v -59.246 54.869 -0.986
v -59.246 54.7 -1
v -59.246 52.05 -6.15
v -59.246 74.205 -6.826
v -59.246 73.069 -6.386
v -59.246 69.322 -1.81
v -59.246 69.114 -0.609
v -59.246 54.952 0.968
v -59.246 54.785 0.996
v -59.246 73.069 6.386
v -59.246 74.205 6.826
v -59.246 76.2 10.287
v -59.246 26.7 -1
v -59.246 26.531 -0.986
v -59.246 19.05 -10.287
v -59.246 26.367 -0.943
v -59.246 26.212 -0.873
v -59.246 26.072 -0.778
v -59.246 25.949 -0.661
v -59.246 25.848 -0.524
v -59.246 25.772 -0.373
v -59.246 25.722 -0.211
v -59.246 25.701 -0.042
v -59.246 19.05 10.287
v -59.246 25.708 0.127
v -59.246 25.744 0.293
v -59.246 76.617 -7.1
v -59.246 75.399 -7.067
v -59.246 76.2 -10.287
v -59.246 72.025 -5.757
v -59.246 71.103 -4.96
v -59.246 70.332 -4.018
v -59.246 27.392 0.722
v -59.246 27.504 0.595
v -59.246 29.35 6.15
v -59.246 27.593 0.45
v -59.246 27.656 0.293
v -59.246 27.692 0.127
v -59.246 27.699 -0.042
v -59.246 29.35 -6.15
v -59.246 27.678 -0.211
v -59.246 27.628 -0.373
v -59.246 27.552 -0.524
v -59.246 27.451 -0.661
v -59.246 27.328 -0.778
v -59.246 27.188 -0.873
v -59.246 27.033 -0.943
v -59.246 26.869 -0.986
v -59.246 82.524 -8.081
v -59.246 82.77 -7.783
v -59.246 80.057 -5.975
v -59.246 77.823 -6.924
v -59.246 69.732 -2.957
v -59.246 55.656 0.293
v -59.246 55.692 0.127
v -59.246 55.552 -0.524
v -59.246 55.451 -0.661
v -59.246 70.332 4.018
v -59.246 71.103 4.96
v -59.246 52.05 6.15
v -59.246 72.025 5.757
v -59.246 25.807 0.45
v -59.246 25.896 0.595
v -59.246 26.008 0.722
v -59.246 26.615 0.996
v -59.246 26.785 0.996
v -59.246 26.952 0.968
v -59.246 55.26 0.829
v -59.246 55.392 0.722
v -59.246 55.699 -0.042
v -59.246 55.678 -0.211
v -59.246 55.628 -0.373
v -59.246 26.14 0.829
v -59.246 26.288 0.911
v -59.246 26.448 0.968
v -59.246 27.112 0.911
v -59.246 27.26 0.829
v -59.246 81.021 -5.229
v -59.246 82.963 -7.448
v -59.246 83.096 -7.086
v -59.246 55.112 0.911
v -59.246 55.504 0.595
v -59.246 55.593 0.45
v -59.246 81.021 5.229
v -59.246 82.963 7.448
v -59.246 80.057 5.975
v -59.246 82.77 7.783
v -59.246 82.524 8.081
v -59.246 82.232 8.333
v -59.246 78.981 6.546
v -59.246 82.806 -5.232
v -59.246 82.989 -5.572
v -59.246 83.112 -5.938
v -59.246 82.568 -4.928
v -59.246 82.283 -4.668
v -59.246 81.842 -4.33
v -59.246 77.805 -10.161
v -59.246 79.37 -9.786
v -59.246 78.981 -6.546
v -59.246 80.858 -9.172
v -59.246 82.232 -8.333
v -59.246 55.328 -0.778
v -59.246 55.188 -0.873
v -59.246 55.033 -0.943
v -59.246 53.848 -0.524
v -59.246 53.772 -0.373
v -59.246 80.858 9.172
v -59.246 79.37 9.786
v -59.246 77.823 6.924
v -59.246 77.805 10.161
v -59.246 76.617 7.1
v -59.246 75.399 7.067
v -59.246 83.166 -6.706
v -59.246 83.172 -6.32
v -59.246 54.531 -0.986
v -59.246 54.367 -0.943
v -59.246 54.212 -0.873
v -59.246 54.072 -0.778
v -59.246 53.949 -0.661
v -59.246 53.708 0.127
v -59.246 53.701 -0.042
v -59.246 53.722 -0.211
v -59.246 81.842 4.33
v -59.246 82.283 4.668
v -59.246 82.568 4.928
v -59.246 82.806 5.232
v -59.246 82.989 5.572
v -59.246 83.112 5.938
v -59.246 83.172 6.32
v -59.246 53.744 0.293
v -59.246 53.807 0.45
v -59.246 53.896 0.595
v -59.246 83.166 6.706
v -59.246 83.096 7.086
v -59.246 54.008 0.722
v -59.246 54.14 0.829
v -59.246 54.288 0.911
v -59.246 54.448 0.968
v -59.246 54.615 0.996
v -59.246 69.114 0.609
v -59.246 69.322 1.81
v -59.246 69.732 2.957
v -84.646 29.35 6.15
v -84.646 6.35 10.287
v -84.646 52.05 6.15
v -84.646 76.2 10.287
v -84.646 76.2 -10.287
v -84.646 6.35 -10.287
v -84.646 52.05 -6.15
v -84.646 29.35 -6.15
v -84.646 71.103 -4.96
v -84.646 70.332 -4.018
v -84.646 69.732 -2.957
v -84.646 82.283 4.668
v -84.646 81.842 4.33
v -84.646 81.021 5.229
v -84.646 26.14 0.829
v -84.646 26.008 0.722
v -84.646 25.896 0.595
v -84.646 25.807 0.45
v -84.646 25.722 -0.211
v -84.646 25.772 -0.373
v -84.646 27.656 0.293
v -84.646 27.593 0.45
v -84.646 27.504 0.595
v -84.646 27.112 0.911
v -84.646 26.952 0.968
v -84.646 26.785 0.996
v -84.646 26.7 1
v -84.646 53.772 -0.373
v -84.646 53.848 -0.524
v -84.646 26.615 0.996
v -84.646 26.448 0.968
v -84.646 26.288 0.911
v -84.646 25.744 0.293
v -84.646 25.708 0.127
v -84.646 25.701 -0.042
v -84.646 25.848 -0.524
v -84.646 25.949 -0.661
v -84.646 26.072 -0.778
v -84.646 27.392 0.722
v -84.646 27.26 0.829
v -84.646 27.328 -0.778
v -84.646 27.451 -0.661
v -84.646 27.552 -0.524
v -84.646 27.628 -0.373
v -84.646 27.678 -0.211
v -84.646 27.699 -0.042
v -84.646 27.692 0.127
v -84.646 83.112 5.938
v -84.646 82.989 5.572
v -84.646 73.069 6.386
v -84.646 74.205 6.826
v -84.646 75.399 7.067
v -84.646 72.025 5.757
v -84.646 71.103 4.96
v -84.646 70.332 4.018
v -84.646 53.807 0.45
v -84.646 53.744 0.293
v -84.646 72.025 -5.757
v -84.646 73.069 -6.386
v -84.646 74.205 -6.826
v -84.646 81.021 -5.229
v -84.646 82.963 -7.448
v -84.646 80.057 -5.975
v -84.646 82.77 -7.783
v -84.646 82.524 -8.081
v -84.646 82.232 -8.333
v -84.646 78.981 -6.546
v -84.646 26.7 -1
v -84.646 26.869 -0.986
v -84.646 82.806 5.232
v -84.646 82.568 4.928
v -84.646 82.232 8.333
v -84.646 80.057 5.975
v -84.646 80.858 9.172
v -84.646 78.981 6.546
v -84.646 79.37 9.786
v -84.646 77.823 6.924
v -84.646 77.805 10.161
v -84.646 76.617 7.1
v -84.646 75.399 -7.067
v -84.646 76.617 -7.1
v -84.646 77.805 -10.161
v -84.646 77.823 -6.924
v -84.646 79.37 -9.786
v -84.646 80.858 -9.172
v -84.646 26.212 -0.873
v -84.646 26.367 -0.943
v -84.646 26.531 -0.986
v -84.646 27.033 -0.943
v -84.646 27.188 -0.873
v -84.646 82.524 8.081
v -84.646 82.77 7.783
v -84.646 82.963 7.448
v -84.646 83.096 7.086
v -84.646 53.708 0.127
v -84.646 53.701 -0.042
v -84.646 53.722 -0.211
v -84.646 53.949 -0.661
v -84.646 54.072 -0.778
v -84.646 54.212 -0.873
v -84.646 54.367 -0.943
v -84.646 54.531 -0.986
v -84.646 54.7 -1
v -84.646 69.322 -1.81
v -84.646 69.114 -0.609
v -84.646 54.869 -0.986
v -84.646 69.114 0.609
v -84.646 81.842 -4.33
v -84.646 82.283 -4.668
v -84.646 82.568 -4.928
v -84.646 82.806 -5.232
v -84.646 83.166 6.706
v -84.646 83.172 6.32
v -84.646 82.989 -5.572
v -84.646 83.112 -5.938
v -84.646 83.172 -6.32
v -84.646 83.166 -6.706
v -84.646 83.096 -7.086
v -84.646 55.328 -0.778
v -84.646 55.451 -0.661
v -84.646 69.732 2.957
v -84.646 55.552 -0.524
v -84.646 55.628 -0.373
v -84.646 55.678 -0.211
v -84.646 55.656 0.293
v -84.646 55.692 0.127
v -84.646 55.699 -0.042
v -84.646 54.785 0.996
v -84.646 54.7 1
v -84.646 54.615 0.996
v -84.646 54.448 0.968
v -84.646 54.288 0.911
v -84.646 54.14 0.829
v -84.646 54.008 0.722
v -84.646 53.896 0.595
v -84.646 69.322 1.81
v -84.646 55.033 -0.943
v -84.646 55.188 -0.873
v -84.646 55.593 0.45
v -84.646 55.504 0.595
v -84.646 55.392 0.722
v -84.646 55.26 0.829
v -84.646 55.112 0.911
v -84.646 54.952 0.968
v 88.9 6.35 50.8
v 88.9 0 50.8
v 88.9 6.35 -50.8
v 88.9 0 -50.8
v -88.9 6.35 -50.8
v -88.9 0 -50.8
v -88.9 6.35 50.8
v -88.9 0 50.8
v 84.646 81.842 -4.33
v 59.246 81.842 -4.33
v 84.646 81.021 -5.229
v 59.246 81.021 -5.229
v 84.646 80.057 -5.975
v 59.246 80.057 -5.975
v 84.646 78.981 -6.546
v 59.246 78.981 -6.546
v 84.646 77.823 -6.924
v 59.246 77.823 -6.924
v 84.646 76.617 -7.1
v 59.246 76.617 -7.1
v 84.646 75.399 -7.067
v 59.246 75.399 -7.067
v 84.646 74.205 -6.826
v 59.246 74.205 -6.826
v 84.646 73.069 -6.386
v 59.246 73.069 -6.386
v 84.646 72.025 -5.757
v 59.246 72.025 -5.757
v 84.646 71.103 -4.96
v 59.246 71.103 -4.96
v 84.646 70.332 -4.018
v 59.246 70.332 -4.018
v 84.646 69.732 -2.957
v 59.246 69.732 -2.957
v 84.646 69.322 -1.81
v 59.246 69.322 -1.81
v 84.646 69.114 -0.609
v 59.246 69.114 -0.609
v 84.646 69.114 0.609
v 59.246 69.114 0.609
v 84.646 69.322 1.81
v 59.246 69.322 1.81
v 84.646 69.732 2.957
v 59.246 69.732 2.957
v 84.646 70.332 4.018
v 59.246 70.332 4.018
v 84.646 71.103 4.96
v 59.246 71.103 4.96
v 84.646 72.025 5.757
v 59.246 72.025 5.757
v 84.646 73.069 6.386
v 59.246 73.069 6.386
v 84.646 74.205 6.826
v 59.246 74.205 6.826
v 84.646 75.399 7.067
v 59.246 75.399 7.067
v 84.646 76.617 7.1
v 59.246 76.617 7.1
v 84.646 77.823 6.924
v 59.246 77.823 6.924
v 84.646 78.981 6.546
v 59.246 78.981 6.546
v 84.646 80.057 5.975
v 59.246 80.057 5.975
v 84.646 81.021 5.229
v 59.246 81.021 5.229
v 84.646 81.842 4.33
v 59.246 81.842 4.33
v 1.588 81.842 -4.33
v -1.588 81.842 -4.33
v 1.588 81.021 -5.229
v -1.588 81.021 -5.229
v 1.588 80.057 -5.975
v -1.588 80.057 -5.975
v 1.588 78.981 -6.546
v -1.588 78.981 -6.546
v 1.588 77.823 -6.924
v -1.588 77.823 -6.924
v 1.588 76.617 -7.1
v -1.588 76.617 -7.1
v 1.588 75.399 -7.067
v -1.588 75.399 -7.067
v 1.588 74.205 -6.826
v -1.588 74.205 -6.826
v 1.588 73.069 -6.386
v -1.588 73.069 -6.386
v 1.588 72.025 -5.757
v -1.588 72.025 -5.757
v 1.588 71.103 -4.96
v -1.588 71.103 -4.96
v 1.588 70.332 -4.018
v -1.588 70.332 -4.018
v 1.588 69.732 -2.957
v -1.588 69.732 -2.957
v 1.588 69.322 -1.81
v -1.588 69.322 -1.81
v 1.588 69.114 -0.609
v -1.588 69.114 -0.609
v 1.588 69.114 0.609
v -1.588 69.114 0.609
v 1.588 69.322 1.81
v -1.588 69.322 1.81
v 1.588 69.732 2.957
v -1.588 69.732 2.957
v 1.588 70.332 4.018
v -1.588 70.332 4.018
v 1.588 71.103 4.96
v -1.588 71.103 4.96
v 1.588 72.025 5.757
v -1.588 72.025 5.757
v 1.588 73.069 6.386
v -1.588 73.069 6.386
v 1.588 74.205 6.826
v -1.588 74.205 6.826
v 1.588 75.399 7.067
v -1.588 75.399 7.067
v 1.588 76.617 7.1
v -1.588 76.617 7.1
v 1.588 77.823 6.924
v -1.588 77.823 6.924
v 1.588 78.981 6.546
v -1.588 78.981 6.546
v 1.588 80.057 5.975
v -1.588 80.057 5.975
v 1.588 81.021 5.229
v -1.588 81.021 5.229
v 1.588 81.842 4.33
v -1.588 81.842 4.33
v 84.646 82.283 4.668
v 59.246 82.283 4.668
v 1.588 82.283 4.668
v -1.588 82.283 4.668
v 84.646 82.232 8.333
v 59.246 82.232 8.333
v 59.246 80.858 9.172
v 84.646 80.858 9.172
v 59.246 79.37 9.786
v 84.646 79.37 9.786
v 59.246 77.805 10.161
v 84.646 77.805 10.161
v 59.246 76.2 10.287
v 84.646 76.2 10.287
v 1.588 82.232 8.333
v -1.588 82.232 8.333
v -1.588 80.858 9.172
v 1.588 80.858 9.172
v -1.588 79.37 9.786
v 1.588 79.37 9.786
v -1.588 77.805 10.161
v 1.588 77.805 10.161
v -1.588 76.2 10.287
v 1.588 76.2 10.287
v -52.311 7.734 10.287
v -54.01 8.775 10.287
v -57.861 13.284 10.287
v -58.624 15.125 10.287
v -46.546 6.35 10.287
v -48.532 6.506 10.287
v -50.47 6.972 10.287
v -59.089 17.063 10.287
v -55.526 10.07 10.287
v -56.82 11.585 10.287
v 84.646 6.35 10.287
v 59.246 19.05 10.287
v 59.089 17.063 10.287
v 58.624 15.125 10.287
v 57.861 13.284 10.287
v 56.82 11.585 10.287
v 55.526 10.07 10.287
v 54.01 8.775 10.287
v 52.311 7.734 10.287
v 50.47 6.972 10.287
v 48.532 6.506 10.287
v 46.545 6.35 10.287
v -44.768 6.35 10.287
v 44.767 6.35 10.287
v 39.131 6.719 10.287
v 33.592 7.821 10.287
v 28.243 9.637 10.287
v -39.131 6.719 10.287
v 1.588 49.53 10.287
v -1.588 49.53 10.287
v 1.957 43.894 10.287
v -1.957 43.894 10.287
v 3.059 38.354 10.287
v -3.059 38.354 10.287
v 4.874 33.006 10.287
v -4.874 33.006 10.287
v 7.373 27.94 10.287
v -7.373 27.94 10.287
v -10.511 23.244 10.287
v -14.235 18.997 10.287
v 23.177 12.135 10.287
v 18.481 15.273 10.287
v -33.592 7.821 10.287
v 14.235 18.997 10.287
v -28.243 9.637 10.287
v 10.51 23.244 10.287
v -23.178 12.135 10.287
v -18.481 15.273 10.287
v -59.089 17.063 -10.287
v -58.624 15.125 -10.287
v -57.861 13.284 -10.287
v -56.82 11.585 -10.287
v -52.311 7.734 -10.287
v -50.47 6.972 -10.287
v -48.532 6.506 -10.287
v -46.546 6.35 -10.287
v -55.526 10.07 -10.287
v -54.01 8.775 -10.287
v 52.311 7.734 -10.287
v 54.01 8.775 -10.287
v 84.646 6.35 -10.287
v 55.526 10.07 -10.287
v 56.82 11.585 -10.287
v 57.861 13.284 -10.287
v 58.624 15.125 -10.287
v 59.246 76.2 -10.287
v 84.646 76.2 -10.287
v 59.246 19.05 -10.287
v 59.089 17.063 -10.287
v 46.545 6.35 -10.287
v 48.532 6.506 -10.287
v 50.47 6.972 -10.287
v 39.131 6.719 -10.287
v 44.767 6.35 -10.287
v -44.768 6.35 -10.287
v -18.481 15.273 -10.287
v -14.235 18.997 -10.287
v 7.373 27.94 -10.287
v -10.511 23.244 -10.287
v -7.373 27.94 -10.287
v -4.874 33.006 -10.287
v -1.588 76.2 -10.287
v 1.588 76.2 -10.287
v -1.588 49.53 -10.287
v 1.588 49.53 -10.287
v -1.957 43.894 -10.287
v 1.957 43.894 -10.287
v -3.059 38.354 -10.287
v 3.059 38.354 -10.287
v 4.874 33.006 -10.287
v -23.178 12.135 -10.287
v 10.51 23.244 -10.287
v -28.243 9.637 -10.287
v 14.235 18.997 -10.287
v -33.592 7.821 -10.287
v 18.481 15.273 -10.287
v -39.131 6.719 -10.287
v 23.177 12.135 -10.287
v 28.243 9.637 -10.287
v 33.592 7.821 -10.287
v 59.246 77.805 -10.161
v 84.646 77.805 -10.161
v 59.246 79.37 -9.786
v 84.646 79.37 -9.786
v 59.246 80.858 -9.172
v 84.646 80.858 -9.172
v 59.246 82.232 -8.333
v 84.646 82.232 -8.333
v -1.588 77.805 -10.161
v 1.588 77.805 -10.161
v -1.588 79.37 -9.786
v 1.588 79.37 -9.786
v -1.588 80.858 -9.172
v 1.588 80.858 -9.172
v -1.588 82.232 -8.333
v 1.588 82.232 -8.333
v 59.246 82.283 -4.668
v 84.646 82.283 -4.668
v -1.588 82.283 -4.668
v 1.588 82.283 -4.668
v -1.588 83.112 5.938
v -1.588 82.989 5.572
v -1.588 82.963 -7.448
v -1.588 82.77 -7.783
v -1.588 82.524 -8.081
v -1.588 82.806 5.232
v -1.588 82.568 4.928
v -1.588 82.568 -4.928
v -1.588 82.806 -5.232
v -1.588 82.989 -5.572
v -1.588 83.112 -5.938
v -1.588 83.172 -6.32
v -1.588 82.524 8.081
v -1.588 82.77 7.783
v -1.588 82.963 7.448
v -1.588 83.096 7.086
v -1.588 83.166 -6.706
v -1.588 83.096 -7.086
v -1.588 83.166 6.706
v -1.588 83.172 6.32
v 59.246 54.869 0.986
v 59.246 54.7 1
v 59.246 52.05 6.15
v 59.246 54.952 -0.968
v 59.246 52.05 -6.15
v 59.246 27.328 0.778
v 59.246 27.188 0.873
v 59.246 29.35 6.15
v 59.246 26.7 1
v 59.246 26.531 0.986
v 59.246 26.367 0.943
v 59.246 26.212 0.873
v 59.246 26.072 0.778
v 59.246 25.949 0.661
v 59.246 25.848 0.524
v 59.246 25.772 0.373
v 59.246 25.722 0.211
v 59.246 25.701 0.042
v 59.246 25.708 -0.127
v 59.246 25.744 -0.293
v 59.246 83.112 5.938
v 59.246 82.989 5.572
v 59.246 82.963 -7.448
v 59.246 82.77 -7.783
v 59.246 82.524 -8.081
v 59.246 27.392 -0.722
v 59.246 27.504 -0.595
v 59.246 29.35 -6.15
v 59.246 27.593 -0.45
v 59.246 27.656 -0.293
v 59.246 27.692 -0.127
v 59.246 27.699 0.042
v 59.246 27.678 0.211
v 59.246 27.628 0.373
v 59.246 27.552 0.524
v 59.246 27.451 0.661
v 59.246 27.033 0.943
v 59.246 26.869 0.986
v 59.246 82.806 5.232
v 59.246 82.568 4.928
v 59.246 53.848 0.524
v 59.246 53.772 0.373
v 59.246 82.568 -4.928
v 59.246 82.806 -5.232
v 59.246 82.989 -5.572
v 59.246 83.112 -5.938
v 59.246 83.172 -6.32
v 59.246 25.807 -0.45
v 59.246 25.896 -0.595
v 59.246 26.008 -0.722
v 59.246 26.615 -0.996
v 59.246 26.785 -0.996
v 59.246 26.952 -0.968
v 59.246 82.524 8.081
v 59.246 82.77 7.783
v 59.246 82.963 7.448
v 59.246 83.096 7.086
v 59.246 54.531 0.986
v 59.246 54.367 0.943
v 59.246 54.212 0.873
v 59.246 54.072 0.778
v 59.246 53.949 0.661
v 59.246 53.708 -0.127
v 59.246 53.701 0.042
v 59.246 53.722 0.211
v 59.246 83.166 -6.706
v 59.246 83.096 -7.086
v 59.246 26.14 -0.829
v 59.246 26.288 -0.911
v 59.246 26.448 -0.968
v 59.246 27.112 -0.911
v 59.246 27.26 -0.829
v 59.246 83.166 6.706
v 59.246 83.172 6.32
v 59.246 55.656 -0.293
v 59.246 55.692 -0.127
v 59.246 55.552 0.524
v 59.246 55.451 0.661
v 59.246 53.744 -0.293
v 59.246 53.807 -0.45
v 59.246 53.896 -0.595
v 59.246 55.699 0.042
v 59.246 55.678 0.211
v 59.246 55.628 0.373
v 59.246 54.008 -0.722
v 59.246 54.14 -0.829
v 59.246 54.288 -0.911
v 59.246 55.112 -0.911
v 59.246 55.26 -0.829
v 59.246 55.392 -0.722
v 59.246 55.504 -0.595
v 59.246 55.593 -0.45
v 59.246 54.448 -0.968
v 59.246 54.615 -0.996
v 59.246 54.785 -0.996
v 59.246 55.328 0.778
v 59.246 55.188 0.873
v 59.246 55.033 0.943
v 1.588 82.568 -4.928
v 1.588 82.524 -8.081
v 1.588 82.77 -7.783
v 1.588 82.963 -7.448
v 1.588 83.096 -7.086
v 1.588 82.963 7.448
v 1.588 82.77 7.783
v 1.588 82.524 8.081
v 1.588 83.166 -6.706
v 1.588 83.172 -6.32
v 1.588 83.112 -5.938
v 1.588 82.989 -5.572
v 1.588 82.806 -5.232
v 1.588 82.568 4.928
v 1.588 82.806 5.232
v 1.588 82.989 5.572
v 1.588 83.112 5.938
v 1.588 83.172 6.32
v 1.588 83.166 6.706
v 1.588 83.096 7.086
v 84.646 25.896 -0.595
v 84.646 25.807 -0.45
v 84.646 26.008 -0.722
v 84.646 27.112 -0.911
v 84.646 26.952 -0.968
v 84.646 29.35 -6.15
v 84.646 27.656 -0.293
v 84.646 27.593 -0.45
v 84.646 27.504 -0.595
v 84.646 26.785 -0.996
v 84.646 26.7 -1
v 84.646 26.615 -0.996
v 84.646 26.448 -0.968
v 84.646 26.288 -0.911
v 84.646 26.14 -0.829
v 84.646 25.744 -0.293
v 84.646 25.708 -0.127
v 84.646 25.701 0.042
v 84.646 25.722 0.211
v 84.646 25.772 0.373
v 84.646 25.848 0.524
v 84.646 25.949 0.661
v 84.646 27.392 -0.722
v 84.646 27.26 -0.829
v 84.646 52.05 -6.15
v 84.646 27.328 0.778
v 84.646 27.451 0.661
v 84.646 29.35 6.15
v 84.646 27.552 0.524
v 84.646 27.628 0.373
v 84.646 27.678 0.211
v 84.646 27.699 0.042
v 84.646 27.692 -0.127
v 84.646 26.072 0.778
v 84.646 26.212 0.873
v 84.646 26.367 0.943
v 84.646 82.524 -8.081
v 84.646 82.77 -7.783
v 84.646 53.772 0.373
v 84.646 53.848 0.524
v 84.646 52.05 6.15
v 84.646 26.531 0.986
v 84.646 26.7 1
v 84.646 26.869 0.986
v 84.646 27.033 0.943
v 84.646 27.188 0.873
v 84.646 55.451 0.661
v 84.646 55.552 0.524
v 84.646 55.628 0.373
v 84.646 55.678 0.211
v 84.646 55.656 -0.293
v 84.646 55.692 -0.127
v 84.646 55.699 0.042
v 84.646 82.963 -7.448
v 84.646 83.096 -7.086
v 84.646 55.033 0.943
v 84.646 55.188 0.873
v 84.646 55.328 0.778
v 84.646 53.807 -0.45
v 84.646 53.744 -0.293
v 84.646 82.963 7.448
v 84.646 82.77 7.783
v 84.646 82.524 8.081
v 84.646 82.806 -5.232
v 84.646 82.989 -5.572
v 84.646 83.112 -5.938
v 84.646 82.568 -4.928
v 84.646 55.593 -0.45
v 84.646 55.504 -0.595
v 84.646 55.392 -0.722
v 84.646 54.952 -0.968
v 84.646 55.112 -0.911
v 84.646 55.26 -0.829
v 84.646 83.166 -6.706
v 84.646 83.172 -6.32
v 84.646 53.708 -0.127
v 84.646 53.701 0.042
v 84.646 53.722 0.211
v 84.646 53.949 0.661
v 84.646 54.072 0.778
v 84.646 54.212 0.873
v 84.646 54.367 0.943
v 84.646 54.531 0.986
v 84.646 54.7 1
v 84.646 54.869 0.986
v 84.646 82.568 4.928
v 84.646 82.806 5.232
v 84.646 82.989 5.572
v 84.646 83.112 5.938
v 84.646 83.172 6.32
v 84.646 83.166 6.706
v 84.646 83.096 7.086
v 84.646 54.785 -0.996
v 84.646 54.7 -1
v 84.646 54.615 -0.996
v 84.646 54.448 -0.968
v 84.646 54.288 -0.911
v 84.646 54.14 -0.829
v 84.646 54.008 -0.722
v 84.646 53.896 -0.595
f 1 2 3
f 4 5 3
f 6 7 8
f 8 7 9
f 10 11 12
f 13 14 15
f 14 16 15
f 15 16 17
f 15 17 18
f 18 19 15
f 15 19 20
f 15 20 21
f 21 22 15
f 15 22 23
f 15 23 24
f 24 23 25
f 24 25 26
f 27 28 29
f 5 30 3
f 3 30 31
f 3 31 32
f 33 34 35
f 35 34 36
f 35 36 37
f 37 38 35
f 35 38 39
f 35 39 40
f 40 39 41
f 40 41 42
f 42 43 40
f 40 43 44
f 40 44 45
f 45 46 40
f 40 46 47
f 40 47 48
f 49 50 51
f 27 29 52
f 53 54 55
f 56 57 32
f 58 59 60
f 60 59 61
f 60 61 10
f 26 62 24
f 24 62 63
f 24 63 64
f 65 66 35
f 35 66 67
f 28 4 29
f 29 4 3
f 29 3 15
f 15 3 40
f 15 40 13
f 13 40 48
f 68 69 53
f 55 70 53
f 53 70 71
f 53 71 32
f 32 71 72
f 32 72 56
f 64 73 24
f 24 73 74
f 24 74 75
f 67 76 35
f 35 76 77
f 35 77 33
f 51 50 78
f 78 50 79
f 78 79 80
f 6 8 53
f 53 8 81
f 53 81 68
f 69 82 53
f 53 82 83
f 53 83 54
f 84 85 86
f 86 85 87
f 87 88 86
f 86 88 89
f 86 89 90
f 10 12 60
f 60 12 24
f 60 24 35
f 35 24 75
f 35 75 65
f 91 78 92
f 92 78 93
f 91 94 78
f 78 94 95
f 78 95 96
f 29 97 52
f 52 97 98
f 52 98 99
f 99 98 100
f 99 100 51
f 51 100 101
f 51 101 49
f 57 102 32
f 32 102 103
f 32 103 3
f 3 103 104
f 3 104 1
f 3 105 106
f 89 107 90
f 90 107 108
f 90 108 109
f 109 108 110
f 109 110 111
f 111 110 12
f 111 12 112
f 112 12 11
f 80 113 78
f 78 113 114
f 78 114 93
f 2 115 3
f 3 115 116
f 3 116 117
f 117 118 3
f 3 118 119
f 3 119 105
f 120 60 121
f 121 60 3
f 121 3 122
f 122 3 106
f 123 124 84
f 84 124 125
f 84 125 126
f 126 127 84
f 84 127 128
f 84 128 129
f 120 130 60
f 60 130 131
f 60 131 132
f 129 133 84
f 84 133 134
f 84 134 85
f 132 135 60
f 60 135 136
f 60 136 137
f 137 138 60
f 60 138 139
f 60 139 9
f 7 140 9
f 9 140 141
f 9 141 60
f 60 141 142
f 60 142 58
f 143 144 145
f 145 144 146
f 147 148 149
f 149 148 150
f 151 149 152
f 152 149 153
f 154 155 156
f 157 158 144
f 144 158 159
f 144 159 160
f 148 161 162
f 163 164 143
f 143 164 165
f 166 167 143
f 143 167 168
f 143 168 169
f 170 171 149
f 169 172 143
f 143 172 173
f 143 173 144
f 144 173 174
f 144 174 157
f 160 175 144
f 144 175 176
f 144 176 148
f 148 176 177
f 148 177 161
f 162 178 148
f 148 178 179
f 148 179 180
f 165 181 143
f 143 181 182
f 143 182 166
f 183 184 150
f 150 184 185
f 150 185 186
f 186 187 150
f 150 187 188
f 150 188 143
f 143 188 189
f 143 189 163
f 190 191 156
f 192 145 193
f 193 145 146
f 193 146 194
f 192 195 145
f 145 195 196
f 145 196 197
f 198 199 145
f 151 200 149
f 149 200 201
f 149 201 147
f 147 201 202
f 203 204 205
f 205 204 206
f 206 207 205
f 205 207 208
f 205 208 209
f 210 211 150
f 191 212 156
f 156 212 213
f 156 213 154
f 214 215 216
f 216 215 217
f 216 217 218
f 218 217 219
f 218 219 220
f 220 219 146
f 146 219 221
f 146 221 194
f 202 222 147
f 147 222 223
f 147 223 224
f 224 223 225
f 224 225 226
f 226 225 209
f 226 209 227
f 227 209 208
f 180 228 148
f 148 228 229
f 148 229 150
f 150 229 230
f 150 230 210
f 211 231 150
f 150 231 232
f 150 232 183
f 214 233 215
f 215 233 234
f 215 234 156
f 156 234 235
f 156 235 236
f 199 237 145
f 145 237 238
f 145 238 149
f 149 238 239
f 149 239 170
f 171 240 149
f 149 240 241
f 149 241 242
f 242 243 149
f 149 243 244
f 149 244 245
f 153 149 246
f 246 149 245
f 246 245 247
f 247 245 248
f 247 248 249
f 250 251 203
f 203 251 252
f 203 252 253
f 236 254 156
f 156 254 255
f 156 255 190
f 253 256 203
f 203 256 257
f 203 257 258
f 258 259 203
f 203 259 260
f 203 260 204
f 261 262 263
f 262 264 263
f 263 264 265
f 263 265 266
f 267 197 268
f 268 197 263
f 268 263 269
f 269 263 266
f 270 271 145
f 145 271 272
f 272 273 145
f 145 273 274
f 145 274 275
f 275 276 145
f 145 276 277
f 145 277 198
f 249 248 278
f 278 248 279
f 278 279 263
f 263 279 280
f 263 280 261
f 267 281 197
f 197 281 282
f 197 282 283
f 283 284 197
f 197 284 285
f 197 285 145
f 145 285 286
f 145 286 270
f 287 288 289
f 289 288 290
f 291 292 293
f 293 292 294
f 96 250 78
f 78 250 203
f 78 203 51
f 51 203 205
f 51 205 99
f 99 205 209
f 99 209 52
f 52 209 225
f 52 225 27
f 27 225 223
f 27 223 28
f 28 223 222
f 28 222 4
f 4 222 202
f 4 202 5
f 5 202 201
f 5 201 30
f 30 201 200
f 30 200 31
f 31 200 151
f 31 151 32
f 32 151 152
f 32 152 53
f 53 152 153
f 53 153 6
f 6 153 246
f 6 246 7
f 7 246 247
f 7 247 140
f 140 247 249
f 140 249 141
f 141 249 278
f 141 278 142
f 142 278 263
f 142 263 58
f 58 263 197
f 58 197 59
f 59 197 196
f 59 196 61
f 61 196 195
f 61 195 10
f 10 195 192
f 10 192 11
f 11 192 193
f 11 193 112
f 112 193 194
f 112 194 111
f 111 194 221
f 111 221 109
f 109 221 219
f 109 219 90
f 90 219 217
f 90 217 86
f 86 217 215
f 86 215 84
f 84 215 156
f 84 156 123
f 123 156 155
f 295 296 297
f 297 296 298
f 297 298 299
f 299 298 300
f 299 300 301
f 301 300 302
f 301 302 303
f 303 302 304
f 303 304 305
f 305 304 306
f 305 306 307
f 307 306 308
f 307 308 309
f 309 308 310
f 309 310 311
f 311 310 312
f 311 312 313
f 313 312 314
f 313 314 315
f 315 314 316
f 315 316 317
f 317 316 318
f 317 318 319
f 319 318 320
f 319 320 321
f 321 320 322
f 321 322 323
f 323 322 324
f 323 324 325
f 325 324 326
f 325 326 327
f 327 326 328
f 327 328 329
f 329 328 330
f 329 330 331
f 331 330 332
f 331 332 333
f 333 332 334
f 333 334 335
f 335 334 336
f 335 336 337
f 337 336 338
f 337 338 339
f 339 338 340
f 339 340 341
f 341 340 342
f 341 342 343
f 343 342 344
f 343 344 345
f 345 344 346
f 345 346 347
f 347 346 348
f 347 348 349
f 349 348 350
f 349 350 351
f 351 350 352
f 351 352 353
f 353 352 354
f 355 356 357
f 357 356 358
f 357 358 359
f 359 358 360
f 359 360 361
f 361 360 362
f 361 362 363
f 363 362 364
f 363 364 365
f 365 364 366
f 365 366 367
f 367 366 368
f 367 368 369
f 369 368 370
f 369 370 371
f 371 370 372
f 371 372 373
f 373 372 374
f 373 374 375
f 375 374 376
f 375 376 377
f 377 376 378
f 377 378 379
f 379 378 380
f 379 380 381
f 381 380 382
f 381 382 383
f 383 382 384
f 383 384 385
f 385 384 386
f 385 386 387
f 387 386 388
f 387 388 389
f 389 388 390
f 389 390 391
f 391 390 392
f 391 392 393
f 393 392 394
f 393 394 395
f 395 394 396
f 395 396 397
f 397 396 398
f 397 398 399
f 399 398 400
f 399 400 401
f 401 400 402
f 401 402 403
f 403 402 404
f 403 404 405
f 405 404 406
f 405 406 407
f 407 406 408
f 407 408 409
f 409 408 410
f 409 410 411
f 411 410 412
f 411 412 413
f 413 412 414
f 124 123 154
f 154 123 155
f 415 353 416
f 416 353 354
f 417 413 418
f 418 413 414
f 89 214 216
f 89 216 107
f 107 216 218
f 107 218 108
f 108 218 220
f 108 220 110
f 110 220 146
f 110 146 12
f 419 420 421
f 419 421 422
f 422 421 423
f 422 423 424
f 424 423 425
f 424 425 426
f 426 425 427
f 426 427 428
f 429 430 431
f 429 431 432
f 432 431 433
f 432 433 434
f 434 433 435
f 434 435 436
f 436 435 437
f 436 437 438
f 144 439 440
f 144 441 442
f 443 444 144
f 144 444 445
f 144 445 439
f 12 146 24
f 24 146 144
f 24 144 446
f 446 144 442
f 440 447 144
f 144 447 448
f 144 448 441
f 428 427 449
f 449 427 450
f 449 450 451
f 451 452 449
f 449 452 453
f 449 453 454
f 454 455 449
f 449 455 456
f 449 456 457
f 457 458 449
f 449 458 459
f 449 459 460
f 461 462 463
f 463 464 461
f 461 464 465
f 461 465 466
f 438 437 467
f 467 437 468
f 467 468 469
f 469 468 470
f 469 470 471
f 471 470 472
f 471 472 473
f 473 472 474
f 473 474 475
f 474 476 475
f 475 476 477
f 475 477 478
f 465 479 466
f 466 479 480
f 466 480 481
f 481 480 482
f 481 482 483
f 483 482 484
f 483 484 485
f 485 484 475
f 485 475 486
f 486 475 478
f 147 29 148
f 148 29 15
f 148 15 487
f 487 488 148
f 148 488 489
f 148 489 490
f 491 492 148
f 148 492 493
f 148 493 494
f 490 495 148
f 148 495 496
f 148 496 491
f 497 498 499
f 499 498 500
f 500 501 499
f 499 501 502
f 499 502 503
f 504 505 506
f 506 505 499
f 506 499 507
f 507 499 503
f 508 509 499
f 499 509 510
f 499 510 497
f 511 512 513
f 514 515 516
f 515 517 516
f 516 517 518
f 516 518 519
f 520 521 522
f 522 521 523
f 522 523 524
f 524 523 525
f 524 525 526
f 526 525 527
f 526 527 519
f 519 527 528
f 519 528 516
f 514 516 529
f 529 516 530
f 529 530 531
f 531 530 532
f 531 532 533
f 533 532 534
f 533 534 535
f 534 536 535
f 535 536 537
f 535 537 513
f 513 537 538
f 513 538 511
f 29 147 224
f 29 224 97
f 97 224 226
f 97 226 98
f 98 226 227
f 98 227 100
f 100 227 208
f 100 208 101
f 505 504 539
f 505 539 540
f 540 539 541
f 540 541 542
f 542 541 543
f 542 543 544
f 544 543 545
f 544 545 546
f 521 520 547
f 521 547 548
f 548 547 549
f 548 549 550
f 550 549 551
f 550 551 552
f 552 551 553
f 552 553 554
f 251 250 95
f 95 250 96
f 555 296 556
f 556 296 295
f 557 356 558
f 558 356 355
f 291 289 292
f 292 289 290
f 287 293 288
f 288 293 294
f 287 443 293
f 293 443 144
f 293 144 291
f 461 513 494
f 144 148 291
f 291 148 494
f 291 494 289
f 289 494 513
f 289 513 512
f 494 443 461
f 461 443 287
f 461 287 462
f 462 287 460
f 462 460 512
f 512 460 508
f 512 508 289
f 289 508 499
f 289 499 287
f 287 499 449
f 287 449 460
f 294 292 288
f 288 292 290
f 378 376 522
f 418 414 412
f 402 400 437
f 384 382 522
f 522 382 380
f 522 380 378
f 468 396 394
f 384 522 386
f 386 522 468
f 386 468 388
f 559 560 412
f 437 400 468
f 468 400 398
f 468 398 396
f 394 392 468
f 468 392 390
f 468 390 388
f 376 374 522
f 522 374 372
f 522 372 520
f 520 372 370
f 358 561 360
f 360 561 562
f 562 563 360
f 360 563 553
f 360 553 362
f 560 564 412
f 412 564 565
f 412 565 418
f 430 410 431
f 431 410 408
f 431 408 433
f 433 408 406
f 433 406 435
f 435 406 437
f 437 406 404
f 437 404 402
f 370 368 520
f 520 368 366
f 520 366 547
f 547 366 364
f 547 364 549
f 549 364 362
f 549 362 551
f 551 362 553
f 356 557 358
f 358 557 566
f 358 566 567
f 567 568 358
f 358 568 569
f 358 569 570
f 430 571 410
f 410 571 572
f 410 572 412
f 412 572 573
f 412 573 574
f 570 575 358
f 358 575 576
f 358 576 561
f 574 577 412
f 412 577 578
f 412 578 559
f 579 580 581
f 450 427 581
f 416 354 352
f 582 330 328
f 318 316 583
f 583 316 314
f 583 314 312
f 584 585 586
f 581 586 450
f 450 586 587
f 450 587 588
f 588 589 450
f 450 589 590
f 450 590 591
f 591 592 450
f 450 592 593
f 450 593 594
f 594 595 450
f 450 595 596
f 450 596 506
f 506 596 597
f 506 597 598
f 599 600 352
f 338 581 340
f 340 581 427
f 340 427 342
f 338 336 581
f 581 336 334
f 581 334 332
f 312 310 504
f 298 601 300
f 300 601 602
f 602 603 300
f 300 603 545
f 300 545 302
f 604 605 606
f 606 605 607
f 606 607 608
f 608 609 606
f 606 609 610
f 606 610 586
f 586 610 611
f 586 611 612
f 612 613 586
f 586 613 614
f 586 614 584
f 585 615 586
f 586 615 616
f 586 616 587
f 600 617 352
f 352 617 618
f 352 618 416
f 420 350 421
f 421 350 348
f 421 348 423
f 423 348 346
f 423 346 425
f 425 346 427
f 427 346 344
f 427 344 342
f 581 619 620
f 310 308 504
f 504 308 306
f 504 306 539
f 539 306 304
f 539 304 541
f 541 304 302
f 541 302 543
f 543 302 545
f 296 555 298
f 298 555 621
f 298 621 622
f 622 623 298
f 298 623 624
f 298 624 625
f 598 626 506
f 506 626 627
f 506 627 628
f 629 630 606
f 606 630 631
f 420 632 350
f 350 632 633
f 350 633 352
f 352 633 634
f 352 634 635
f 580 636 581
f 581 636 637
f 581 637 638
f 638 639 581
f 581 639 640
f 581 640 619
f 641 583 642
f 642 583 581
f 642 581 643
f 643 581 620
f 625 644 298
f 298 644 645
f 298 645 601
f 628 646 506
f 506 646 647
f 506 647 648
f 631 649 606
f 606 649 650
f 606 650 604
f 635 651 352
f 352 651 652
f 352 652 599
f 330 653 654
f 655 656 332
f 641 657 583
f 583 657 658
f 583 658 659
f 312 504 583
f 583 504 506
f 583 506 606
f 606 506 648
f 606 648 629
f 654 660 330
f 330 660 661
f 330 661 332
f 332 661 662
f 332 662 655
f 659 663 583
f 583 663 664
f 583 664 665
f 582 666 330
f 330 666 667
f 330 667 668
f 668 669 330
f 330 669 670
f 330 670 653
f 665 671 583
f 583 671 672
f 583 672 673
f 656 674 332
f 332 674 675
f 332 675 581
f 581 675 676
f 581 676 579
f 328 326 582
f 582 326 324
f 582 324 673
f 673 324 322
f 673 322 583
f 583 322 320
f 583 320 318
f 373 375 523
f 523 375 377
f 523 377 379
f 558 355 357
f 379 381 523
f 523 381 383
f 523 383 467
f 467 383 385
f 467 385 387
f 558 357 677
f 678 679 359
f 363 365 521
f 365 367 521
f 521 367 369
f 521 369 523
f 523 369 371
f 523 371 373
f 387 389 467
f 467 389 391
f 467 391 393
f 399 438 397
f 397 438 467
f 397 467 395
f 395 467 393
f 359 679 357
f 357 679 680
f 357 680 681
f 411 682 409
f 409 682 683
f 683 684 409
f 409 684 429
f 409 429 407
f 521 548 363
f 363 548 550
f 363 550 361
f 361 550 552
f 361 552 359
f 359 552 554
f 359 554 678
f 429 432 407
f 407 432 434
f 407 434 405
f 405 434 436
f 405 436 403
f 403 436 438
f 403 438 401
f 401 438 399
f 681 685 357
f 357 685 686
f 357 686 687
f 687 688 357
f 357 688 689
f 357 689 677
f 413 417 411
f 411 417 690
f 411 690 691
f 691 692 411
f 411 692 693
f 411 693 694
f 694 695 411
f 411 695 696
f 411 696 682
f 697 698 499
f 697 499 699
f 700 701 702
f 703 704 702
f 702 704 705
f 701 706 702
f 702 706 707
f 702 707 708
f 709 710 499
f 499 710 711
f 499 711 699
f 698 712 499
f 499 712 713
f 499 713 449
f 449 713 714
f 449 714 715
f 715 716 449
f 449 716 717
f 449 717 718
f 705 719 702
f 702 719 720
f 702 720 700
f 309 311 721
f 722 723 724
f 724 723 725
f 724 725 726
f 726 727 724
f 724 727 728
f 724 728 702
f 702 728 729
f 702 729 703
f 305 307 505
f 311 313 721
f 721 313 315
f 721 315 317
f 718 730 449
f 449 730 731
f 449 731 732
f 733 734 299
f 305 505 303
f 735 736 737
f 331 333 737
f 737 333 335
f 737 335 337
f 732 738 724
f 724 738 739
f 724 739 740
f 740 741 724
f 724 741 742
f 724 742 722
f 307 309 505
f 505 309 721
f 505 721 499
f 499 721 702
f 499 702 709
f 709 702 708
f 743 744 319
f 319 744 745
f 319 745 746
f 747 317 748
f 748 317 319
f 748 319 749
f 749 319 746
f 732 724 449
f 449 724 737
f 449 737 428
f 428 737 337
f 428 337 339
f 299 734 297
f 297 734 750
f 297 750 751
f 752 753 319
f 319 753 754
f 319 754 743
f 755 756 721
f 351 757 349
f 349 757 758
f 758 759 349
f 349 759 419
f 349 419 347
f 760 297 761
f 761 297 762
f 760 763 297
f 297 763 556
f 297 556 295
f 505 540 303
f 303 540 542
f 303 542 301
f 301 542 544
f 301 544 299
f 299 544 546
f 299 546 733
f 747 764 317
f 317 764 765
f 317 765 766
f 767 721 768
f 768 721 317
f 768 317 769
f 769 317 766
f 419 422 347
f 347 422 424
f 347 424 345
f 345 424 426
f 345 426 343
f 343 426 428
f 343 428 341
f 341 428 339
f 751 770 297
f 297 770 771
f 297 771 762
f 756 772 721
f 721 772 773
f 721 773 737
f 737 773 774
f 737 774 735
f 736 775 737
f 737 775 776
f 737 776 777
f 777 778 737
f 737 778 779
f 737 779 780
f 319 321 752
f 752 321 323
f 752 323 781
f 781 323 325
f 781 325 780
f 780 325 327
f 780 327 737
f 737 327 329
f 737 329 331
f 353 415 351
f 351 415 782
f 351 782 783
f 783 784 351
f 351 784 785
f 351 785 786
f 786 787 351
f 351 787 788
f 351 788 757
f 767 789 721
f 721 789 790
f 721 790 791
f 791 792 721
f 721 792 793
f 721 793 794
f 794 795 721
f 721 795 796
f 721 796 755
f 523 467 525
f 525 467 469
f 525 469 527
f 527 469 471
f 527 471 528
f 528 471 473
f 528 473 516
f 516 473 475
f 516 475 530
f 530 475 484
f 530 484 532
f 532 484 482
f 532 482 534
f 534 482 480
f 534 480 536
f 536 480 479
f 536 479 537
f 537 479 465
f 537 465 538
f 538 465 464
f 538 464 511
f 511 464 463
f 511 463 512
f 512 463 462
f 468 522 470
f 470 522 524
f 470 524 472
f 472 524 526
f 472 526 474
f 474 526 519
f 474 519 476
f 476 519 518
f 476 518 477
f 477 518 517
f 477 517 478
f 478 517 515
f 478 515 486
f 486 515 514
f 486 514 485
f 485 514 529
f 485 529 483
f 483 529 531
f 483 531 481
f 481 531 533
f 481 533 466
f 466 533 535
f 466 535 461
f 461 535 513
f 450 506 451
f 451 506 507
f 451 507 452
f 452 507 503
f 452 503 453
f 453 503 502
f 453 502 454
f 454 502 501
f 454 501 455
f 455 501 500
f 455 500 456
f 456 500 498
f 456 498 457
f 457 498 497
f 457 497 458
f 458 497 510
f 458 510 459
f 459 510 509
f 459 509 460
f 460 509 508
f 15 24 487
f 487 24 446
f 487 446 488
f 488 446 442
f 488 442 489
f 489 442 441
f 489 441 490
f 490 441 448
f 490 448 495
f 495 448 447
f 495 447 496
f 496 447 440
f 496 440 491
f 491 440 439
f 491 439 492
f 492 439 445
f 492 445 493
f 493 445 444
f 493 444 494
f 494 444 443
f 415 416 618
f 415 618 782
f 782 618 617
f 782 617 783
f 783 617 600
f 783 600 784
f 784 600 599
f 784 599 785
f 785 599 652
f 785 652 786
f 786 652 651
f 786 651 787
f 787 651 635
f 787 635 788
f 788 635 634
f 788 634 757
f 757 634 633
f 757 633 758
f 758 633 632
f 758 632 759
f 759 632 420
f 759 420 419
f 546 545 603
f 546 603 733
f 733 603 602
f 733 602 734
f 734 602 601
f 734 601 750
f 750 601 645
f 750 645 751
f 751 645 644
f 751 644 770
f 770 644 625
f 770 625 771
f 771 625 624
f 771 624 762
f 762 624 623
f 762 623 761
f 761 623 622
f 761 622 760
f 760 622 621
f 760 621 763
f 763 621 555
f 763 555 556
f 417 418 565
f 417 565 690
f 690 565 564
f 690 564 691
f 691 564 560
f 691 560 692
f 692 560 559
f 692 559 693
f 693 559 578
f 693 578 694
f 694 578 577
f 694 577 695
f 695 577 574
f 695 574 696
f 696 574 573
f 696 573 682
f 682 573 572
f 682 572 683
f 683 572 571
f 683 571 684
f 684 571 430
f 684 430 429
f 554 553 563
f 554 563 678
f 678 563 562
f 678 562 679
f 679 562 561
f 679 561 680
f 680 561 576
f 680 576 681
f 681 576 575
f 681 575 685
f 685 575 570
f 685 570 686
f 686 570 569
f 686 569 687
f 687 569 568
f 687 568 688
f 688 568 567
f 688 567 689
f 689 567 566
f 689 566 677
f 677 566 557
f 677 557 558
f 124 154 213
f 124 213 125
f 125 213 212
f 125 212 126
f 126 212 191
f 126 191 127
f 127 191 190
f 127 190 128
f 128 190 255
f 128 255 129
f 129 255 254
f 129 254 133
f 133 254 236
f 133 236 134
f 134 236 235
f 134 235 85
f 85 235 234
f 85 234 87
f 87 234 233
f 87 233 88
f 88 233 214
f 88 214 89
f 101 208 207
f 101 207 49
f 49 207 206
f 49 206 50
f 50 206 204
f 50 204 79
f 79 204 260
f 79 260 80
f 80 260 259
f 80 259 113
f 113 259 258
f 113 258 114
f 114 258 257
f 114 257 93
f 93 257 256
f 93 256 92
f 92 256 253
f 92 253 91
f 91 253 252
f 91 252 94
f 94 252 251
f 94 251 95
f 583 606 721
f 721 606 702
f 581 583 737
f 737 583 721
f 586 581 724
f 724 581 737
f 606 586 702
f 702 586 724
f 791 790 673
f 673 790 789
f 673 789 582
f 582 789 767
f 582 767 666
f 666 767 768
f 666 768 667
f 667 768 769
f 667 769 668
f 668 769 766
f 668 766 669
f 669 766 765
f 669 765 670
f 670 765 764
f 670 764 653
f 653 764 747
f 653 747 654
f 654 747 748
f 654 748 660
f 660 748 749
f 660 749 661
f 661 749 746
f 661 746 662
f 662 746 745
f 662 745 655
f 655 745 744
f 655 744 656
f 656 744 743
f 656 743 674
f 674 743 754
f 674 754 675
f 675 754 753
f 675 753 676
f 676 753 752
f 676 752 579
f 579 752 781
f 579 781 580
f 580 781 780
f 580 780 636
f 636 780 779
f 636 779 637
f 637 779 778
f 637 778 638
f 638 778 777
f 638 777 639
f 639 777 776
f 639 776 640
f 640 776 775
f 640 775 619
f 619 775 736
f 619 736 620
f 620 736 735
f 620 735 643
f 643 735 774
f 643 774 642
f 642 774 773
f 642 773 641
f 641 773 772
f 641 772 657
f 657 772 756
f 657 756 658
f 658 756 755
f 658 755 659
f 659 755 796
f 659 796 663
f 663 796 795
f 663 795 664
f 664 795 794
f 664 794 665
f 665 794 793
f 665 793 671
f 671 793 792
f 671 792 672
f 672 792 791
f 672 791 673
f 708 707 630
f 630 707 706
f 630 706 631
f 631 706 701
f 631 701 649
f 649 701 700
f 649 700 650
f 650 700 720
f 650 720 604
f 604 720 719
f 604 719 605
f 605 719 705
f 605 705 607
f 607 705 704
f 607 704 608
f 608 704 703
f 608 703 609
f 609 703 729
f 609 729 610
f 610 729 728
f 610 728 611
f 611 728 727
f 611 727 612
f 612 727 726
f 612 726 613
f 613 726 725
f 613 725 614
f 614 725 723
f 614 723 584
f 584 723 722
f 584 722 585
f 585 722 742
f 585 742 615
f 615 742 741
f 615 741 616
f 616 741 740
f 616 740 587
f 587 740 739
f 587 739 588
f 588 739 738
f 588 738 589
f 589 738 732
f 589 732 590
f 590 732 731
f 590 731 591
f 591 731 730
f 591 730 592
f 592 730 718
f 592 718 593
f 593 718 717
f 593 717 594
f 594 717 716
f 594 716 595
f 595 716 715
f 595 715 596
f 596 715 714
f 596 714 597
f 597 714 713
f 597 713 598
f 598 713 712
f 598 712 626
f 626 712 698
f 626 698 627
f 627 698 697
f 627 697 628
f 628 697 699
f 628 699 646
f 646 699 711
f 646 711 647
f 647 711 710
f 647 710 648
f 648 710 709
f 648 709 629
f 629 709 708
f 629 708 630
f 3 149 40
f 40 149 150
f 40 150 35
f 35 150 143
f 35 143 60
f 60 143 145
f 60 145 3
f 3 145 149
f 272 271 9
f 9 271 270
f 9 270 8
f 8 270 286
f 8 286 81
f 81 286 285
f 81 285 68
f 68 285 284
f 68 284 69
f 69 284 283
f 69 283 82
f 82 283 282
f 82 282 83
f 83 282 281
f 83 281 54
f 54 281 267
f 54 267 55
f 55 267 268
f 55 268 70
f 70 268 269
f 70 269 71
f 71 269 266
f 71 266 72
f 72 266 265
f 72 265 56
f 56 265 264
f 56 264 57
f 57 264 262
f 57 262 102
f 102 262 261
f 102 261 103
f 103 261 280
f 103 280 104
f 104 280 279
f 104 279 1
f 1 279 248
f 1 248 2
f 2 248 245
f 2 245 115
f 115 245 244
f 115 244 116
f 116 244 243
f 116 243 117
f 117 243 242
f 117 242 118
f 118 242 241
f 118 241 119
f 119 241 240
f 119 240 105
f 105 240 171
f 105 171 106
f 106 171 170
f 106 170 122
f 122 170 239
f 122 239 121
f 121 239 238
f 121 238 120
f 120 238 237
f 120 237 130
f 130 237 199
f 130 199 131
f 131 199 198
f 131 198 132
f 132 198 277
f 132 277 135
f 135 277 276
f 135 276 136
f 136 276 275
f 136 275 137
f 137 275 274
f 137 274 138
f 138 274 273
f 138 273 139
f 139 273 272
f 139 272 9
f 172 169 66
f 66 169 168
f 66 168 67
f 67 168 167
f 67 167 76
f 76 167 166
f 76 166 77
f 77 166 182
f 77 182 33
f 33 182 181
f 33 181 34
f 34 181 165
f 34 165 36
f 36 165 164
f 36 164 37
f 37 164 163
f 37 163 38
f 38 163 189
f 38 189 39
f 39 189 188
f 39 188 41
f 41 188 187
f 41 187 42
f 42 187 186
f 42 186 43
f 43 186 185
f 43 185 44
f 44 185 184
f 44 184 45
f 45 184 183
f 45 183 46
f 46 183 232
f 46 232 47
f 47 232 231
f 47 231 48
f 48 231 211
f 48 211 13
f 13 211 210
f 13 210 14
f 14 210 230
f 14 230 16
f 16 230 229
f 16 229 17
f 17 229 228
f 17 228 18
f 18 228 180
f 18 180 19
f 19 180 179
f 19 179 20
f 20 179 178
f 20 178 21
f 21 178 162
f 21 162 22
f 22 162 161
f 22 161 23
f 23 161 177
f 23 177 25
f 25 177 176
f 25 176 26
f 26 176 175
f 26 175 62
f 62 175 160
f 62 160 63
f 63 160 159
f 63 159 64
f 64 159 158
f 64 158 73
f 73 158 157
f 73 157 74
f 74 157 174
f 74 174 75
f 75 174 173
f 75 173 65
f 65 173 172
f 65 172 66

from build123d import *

# Parameters (mm, degrees)
SKETCH1_W           = 177.8
SKETCH1_H           = 101.6
BOSS_EXTRUDE1_DEPTH = 6.35
BOSS_EXTRUDE2_DEPTH = 177.8
SKETCH3_W           = 57.658
SKETCH3_H           = 101.6
SKETCH3_W_2         = 4.2545
CUT_EXTRUDE1_DEPTH  = 129.722963579
FILLET1_R           = 43.18
FILLET2_R           = 12.7
FILLET3_R           = 2.286
SKETCH5_R           = 1
SKETCH5_W           = 12.3
SKETCH5_H           = 22.7
CUT_EXTRUDE2_DEPTH  = 178.330785165
CUT_EXTRUDE3_START  = 118.491
SKETCH5_2_R         = 1
SKETCH5_2_W         = 12.3
SKETCH5_2_H         = 22.7
CUT_EXTRUDE3_DEPTH  = 59.839785165


with BuildPart() as part:
    # Sketch1 → Boss-Extrude1 (new body)
    with BuildSketch(Plane(origin=(0, 0, 0), x_dir=(1, 0, 0), z_dir=(0, 1, 0))):
        Rectangle(SKETCH1_W, SKETCH1_H)
    extrude(amount=BOSS_EXTRUDE1_DEPTH)

    # Sketch2 → Boss-Extrude2 (add)
    with BuildSketch(Plane.ZY.offset(88.9)):
        with BuildLine():
            Line((0, 69.088), (0, 6.35))
            Line((0, 6.35), (10.287, 6.35))
            Line((10.287, 6.35), (10.287, 76.2))
            ThreePointArc((10.287, 76.2), (9.226129892, 80.749823756), (6.26232882, 84.361225812))
            Line((6.26232882, 84.361225812), (4.329511283, 81.842328956))
            ThreePointArc((4.329511283, 81.842328956), (6.734567081, 73.913922523), (0, 69.088))
        make_face()
        with BuildLine():
            Line((-10.287, 76.2), (-10.287, 6.35))
            Line((-10.287, 6.35), (0, 6.35))
            Line((0, 6.35), (0, 69.088))
            ThreePointArc((0, 69.088), (-6.734567081, 73.913922523), (-4.329511283, 81.842328956))
            Line((-4.329511283, 81.842328956), (-6.26232882, 84.361225812))
            ThreePointArc((-6.26232882, 84.361225812), (-9.226129892, 80.749823756), (-10.287, 76.2))
        make_face()
    extrude(amount=-BOSS_EXTRUDE2_DEPTH)

    # Sketch3 → Cut-Extrude1 (cut, through all)
    with BuildSketch(Plane(origin=(0, 6.35, 0), x_dir=(1, 0, 0), z_dir=(0, 1, 0))):
        with Locations((-30.4165, 0)):
            Rectangle(SKETCH3_W, SKETCH3_H)
        with Locations((30.4165, 0)):
            Rectangle(SKETCH3_W, SKETCH3_H)
        with Locations((86.77275, 0)):
            Rectangle(SKETCH3_W_2, SKETCH3_H)
        with Locations((-86.77275, 0)):
            Rectangle(SKETCH3_W_2, SKETCH3_H)
    extrude(amount=CUT_EXTRUDE1_DEPTH, mode=Mode.SUBTRACT)

    # Fillet1
    fillet1_edges = [part.edges().sort_by_distance(p)[0] for p in [
        (1.5875, 6.35, 0),
        (-1.5875, 6.35, 0),
    ]]
    fillet(fillet1_edges, radius=FILLET1_R)

    # Fillet2
    fillet2_edges = [part.edges().sort_by_distance(p)[0] for p in [
        (59.2455, 6.35, 0),
        (-59.2455, 6.35, 0),
    ]]
    fillet(fillet2_edges, radius=FILLET2_R)

    # Fillet3
    fillet3_edges = [part.edges().sort_by_distance(p)[0] for p in [
        (71.9455, 84.361225812, -6.26232882),
        (0, 84.361225812, -6.26232882),
        (-71.9455, 84.361225812, -6.26232882),
        (71.9455, 84.361225812, 6.26232882),
        (0, 84.361225812, 6.26232882),
        (-71.9455, 84.361225812, 6.26232882),
    ]]
    fillet(fillet3_edges, radius=FILLET3_R)

    # Sketch5 → Cut-Extrude2 (cut, through all)
    with BuildSketch(Plane.ZY.offset(-59.2455)):
        with Locations((0, 54.7)):
            Circle(SKETCH5_R)
        with Locations((0, 26.7)):
            Circle(SKETCH5_R)
        with Locations((0, 40.7)):
            Rectangle(SKETCH5_W, SKETCH5_H)
    extrude(amount=-CUT_EXTRUDE2_DEPTH, mode=Mode.SUBTRACT)

    # Sketch5<2> → Cut-Extrude3 (cut, through all)
    with BuildSketch(Plane.ZY.offset(-59.2455).offset(CUT_EXTRUDE3_START)):
        with Locations((0, 54.7)):
            Circle(SKETCH5_2_R)
        with Locations((0, 26.7)):
            Circle(SKETCH5_2_R)
        with Locations((0, 40.7)):
            Rectangle(SKETCH5_2_W, SKETCH5_2_H)
    extrude(amount=CUT_EXTRUDE3_DEPTH, mode=Mode.SUBTRACT)


solid = part.part
